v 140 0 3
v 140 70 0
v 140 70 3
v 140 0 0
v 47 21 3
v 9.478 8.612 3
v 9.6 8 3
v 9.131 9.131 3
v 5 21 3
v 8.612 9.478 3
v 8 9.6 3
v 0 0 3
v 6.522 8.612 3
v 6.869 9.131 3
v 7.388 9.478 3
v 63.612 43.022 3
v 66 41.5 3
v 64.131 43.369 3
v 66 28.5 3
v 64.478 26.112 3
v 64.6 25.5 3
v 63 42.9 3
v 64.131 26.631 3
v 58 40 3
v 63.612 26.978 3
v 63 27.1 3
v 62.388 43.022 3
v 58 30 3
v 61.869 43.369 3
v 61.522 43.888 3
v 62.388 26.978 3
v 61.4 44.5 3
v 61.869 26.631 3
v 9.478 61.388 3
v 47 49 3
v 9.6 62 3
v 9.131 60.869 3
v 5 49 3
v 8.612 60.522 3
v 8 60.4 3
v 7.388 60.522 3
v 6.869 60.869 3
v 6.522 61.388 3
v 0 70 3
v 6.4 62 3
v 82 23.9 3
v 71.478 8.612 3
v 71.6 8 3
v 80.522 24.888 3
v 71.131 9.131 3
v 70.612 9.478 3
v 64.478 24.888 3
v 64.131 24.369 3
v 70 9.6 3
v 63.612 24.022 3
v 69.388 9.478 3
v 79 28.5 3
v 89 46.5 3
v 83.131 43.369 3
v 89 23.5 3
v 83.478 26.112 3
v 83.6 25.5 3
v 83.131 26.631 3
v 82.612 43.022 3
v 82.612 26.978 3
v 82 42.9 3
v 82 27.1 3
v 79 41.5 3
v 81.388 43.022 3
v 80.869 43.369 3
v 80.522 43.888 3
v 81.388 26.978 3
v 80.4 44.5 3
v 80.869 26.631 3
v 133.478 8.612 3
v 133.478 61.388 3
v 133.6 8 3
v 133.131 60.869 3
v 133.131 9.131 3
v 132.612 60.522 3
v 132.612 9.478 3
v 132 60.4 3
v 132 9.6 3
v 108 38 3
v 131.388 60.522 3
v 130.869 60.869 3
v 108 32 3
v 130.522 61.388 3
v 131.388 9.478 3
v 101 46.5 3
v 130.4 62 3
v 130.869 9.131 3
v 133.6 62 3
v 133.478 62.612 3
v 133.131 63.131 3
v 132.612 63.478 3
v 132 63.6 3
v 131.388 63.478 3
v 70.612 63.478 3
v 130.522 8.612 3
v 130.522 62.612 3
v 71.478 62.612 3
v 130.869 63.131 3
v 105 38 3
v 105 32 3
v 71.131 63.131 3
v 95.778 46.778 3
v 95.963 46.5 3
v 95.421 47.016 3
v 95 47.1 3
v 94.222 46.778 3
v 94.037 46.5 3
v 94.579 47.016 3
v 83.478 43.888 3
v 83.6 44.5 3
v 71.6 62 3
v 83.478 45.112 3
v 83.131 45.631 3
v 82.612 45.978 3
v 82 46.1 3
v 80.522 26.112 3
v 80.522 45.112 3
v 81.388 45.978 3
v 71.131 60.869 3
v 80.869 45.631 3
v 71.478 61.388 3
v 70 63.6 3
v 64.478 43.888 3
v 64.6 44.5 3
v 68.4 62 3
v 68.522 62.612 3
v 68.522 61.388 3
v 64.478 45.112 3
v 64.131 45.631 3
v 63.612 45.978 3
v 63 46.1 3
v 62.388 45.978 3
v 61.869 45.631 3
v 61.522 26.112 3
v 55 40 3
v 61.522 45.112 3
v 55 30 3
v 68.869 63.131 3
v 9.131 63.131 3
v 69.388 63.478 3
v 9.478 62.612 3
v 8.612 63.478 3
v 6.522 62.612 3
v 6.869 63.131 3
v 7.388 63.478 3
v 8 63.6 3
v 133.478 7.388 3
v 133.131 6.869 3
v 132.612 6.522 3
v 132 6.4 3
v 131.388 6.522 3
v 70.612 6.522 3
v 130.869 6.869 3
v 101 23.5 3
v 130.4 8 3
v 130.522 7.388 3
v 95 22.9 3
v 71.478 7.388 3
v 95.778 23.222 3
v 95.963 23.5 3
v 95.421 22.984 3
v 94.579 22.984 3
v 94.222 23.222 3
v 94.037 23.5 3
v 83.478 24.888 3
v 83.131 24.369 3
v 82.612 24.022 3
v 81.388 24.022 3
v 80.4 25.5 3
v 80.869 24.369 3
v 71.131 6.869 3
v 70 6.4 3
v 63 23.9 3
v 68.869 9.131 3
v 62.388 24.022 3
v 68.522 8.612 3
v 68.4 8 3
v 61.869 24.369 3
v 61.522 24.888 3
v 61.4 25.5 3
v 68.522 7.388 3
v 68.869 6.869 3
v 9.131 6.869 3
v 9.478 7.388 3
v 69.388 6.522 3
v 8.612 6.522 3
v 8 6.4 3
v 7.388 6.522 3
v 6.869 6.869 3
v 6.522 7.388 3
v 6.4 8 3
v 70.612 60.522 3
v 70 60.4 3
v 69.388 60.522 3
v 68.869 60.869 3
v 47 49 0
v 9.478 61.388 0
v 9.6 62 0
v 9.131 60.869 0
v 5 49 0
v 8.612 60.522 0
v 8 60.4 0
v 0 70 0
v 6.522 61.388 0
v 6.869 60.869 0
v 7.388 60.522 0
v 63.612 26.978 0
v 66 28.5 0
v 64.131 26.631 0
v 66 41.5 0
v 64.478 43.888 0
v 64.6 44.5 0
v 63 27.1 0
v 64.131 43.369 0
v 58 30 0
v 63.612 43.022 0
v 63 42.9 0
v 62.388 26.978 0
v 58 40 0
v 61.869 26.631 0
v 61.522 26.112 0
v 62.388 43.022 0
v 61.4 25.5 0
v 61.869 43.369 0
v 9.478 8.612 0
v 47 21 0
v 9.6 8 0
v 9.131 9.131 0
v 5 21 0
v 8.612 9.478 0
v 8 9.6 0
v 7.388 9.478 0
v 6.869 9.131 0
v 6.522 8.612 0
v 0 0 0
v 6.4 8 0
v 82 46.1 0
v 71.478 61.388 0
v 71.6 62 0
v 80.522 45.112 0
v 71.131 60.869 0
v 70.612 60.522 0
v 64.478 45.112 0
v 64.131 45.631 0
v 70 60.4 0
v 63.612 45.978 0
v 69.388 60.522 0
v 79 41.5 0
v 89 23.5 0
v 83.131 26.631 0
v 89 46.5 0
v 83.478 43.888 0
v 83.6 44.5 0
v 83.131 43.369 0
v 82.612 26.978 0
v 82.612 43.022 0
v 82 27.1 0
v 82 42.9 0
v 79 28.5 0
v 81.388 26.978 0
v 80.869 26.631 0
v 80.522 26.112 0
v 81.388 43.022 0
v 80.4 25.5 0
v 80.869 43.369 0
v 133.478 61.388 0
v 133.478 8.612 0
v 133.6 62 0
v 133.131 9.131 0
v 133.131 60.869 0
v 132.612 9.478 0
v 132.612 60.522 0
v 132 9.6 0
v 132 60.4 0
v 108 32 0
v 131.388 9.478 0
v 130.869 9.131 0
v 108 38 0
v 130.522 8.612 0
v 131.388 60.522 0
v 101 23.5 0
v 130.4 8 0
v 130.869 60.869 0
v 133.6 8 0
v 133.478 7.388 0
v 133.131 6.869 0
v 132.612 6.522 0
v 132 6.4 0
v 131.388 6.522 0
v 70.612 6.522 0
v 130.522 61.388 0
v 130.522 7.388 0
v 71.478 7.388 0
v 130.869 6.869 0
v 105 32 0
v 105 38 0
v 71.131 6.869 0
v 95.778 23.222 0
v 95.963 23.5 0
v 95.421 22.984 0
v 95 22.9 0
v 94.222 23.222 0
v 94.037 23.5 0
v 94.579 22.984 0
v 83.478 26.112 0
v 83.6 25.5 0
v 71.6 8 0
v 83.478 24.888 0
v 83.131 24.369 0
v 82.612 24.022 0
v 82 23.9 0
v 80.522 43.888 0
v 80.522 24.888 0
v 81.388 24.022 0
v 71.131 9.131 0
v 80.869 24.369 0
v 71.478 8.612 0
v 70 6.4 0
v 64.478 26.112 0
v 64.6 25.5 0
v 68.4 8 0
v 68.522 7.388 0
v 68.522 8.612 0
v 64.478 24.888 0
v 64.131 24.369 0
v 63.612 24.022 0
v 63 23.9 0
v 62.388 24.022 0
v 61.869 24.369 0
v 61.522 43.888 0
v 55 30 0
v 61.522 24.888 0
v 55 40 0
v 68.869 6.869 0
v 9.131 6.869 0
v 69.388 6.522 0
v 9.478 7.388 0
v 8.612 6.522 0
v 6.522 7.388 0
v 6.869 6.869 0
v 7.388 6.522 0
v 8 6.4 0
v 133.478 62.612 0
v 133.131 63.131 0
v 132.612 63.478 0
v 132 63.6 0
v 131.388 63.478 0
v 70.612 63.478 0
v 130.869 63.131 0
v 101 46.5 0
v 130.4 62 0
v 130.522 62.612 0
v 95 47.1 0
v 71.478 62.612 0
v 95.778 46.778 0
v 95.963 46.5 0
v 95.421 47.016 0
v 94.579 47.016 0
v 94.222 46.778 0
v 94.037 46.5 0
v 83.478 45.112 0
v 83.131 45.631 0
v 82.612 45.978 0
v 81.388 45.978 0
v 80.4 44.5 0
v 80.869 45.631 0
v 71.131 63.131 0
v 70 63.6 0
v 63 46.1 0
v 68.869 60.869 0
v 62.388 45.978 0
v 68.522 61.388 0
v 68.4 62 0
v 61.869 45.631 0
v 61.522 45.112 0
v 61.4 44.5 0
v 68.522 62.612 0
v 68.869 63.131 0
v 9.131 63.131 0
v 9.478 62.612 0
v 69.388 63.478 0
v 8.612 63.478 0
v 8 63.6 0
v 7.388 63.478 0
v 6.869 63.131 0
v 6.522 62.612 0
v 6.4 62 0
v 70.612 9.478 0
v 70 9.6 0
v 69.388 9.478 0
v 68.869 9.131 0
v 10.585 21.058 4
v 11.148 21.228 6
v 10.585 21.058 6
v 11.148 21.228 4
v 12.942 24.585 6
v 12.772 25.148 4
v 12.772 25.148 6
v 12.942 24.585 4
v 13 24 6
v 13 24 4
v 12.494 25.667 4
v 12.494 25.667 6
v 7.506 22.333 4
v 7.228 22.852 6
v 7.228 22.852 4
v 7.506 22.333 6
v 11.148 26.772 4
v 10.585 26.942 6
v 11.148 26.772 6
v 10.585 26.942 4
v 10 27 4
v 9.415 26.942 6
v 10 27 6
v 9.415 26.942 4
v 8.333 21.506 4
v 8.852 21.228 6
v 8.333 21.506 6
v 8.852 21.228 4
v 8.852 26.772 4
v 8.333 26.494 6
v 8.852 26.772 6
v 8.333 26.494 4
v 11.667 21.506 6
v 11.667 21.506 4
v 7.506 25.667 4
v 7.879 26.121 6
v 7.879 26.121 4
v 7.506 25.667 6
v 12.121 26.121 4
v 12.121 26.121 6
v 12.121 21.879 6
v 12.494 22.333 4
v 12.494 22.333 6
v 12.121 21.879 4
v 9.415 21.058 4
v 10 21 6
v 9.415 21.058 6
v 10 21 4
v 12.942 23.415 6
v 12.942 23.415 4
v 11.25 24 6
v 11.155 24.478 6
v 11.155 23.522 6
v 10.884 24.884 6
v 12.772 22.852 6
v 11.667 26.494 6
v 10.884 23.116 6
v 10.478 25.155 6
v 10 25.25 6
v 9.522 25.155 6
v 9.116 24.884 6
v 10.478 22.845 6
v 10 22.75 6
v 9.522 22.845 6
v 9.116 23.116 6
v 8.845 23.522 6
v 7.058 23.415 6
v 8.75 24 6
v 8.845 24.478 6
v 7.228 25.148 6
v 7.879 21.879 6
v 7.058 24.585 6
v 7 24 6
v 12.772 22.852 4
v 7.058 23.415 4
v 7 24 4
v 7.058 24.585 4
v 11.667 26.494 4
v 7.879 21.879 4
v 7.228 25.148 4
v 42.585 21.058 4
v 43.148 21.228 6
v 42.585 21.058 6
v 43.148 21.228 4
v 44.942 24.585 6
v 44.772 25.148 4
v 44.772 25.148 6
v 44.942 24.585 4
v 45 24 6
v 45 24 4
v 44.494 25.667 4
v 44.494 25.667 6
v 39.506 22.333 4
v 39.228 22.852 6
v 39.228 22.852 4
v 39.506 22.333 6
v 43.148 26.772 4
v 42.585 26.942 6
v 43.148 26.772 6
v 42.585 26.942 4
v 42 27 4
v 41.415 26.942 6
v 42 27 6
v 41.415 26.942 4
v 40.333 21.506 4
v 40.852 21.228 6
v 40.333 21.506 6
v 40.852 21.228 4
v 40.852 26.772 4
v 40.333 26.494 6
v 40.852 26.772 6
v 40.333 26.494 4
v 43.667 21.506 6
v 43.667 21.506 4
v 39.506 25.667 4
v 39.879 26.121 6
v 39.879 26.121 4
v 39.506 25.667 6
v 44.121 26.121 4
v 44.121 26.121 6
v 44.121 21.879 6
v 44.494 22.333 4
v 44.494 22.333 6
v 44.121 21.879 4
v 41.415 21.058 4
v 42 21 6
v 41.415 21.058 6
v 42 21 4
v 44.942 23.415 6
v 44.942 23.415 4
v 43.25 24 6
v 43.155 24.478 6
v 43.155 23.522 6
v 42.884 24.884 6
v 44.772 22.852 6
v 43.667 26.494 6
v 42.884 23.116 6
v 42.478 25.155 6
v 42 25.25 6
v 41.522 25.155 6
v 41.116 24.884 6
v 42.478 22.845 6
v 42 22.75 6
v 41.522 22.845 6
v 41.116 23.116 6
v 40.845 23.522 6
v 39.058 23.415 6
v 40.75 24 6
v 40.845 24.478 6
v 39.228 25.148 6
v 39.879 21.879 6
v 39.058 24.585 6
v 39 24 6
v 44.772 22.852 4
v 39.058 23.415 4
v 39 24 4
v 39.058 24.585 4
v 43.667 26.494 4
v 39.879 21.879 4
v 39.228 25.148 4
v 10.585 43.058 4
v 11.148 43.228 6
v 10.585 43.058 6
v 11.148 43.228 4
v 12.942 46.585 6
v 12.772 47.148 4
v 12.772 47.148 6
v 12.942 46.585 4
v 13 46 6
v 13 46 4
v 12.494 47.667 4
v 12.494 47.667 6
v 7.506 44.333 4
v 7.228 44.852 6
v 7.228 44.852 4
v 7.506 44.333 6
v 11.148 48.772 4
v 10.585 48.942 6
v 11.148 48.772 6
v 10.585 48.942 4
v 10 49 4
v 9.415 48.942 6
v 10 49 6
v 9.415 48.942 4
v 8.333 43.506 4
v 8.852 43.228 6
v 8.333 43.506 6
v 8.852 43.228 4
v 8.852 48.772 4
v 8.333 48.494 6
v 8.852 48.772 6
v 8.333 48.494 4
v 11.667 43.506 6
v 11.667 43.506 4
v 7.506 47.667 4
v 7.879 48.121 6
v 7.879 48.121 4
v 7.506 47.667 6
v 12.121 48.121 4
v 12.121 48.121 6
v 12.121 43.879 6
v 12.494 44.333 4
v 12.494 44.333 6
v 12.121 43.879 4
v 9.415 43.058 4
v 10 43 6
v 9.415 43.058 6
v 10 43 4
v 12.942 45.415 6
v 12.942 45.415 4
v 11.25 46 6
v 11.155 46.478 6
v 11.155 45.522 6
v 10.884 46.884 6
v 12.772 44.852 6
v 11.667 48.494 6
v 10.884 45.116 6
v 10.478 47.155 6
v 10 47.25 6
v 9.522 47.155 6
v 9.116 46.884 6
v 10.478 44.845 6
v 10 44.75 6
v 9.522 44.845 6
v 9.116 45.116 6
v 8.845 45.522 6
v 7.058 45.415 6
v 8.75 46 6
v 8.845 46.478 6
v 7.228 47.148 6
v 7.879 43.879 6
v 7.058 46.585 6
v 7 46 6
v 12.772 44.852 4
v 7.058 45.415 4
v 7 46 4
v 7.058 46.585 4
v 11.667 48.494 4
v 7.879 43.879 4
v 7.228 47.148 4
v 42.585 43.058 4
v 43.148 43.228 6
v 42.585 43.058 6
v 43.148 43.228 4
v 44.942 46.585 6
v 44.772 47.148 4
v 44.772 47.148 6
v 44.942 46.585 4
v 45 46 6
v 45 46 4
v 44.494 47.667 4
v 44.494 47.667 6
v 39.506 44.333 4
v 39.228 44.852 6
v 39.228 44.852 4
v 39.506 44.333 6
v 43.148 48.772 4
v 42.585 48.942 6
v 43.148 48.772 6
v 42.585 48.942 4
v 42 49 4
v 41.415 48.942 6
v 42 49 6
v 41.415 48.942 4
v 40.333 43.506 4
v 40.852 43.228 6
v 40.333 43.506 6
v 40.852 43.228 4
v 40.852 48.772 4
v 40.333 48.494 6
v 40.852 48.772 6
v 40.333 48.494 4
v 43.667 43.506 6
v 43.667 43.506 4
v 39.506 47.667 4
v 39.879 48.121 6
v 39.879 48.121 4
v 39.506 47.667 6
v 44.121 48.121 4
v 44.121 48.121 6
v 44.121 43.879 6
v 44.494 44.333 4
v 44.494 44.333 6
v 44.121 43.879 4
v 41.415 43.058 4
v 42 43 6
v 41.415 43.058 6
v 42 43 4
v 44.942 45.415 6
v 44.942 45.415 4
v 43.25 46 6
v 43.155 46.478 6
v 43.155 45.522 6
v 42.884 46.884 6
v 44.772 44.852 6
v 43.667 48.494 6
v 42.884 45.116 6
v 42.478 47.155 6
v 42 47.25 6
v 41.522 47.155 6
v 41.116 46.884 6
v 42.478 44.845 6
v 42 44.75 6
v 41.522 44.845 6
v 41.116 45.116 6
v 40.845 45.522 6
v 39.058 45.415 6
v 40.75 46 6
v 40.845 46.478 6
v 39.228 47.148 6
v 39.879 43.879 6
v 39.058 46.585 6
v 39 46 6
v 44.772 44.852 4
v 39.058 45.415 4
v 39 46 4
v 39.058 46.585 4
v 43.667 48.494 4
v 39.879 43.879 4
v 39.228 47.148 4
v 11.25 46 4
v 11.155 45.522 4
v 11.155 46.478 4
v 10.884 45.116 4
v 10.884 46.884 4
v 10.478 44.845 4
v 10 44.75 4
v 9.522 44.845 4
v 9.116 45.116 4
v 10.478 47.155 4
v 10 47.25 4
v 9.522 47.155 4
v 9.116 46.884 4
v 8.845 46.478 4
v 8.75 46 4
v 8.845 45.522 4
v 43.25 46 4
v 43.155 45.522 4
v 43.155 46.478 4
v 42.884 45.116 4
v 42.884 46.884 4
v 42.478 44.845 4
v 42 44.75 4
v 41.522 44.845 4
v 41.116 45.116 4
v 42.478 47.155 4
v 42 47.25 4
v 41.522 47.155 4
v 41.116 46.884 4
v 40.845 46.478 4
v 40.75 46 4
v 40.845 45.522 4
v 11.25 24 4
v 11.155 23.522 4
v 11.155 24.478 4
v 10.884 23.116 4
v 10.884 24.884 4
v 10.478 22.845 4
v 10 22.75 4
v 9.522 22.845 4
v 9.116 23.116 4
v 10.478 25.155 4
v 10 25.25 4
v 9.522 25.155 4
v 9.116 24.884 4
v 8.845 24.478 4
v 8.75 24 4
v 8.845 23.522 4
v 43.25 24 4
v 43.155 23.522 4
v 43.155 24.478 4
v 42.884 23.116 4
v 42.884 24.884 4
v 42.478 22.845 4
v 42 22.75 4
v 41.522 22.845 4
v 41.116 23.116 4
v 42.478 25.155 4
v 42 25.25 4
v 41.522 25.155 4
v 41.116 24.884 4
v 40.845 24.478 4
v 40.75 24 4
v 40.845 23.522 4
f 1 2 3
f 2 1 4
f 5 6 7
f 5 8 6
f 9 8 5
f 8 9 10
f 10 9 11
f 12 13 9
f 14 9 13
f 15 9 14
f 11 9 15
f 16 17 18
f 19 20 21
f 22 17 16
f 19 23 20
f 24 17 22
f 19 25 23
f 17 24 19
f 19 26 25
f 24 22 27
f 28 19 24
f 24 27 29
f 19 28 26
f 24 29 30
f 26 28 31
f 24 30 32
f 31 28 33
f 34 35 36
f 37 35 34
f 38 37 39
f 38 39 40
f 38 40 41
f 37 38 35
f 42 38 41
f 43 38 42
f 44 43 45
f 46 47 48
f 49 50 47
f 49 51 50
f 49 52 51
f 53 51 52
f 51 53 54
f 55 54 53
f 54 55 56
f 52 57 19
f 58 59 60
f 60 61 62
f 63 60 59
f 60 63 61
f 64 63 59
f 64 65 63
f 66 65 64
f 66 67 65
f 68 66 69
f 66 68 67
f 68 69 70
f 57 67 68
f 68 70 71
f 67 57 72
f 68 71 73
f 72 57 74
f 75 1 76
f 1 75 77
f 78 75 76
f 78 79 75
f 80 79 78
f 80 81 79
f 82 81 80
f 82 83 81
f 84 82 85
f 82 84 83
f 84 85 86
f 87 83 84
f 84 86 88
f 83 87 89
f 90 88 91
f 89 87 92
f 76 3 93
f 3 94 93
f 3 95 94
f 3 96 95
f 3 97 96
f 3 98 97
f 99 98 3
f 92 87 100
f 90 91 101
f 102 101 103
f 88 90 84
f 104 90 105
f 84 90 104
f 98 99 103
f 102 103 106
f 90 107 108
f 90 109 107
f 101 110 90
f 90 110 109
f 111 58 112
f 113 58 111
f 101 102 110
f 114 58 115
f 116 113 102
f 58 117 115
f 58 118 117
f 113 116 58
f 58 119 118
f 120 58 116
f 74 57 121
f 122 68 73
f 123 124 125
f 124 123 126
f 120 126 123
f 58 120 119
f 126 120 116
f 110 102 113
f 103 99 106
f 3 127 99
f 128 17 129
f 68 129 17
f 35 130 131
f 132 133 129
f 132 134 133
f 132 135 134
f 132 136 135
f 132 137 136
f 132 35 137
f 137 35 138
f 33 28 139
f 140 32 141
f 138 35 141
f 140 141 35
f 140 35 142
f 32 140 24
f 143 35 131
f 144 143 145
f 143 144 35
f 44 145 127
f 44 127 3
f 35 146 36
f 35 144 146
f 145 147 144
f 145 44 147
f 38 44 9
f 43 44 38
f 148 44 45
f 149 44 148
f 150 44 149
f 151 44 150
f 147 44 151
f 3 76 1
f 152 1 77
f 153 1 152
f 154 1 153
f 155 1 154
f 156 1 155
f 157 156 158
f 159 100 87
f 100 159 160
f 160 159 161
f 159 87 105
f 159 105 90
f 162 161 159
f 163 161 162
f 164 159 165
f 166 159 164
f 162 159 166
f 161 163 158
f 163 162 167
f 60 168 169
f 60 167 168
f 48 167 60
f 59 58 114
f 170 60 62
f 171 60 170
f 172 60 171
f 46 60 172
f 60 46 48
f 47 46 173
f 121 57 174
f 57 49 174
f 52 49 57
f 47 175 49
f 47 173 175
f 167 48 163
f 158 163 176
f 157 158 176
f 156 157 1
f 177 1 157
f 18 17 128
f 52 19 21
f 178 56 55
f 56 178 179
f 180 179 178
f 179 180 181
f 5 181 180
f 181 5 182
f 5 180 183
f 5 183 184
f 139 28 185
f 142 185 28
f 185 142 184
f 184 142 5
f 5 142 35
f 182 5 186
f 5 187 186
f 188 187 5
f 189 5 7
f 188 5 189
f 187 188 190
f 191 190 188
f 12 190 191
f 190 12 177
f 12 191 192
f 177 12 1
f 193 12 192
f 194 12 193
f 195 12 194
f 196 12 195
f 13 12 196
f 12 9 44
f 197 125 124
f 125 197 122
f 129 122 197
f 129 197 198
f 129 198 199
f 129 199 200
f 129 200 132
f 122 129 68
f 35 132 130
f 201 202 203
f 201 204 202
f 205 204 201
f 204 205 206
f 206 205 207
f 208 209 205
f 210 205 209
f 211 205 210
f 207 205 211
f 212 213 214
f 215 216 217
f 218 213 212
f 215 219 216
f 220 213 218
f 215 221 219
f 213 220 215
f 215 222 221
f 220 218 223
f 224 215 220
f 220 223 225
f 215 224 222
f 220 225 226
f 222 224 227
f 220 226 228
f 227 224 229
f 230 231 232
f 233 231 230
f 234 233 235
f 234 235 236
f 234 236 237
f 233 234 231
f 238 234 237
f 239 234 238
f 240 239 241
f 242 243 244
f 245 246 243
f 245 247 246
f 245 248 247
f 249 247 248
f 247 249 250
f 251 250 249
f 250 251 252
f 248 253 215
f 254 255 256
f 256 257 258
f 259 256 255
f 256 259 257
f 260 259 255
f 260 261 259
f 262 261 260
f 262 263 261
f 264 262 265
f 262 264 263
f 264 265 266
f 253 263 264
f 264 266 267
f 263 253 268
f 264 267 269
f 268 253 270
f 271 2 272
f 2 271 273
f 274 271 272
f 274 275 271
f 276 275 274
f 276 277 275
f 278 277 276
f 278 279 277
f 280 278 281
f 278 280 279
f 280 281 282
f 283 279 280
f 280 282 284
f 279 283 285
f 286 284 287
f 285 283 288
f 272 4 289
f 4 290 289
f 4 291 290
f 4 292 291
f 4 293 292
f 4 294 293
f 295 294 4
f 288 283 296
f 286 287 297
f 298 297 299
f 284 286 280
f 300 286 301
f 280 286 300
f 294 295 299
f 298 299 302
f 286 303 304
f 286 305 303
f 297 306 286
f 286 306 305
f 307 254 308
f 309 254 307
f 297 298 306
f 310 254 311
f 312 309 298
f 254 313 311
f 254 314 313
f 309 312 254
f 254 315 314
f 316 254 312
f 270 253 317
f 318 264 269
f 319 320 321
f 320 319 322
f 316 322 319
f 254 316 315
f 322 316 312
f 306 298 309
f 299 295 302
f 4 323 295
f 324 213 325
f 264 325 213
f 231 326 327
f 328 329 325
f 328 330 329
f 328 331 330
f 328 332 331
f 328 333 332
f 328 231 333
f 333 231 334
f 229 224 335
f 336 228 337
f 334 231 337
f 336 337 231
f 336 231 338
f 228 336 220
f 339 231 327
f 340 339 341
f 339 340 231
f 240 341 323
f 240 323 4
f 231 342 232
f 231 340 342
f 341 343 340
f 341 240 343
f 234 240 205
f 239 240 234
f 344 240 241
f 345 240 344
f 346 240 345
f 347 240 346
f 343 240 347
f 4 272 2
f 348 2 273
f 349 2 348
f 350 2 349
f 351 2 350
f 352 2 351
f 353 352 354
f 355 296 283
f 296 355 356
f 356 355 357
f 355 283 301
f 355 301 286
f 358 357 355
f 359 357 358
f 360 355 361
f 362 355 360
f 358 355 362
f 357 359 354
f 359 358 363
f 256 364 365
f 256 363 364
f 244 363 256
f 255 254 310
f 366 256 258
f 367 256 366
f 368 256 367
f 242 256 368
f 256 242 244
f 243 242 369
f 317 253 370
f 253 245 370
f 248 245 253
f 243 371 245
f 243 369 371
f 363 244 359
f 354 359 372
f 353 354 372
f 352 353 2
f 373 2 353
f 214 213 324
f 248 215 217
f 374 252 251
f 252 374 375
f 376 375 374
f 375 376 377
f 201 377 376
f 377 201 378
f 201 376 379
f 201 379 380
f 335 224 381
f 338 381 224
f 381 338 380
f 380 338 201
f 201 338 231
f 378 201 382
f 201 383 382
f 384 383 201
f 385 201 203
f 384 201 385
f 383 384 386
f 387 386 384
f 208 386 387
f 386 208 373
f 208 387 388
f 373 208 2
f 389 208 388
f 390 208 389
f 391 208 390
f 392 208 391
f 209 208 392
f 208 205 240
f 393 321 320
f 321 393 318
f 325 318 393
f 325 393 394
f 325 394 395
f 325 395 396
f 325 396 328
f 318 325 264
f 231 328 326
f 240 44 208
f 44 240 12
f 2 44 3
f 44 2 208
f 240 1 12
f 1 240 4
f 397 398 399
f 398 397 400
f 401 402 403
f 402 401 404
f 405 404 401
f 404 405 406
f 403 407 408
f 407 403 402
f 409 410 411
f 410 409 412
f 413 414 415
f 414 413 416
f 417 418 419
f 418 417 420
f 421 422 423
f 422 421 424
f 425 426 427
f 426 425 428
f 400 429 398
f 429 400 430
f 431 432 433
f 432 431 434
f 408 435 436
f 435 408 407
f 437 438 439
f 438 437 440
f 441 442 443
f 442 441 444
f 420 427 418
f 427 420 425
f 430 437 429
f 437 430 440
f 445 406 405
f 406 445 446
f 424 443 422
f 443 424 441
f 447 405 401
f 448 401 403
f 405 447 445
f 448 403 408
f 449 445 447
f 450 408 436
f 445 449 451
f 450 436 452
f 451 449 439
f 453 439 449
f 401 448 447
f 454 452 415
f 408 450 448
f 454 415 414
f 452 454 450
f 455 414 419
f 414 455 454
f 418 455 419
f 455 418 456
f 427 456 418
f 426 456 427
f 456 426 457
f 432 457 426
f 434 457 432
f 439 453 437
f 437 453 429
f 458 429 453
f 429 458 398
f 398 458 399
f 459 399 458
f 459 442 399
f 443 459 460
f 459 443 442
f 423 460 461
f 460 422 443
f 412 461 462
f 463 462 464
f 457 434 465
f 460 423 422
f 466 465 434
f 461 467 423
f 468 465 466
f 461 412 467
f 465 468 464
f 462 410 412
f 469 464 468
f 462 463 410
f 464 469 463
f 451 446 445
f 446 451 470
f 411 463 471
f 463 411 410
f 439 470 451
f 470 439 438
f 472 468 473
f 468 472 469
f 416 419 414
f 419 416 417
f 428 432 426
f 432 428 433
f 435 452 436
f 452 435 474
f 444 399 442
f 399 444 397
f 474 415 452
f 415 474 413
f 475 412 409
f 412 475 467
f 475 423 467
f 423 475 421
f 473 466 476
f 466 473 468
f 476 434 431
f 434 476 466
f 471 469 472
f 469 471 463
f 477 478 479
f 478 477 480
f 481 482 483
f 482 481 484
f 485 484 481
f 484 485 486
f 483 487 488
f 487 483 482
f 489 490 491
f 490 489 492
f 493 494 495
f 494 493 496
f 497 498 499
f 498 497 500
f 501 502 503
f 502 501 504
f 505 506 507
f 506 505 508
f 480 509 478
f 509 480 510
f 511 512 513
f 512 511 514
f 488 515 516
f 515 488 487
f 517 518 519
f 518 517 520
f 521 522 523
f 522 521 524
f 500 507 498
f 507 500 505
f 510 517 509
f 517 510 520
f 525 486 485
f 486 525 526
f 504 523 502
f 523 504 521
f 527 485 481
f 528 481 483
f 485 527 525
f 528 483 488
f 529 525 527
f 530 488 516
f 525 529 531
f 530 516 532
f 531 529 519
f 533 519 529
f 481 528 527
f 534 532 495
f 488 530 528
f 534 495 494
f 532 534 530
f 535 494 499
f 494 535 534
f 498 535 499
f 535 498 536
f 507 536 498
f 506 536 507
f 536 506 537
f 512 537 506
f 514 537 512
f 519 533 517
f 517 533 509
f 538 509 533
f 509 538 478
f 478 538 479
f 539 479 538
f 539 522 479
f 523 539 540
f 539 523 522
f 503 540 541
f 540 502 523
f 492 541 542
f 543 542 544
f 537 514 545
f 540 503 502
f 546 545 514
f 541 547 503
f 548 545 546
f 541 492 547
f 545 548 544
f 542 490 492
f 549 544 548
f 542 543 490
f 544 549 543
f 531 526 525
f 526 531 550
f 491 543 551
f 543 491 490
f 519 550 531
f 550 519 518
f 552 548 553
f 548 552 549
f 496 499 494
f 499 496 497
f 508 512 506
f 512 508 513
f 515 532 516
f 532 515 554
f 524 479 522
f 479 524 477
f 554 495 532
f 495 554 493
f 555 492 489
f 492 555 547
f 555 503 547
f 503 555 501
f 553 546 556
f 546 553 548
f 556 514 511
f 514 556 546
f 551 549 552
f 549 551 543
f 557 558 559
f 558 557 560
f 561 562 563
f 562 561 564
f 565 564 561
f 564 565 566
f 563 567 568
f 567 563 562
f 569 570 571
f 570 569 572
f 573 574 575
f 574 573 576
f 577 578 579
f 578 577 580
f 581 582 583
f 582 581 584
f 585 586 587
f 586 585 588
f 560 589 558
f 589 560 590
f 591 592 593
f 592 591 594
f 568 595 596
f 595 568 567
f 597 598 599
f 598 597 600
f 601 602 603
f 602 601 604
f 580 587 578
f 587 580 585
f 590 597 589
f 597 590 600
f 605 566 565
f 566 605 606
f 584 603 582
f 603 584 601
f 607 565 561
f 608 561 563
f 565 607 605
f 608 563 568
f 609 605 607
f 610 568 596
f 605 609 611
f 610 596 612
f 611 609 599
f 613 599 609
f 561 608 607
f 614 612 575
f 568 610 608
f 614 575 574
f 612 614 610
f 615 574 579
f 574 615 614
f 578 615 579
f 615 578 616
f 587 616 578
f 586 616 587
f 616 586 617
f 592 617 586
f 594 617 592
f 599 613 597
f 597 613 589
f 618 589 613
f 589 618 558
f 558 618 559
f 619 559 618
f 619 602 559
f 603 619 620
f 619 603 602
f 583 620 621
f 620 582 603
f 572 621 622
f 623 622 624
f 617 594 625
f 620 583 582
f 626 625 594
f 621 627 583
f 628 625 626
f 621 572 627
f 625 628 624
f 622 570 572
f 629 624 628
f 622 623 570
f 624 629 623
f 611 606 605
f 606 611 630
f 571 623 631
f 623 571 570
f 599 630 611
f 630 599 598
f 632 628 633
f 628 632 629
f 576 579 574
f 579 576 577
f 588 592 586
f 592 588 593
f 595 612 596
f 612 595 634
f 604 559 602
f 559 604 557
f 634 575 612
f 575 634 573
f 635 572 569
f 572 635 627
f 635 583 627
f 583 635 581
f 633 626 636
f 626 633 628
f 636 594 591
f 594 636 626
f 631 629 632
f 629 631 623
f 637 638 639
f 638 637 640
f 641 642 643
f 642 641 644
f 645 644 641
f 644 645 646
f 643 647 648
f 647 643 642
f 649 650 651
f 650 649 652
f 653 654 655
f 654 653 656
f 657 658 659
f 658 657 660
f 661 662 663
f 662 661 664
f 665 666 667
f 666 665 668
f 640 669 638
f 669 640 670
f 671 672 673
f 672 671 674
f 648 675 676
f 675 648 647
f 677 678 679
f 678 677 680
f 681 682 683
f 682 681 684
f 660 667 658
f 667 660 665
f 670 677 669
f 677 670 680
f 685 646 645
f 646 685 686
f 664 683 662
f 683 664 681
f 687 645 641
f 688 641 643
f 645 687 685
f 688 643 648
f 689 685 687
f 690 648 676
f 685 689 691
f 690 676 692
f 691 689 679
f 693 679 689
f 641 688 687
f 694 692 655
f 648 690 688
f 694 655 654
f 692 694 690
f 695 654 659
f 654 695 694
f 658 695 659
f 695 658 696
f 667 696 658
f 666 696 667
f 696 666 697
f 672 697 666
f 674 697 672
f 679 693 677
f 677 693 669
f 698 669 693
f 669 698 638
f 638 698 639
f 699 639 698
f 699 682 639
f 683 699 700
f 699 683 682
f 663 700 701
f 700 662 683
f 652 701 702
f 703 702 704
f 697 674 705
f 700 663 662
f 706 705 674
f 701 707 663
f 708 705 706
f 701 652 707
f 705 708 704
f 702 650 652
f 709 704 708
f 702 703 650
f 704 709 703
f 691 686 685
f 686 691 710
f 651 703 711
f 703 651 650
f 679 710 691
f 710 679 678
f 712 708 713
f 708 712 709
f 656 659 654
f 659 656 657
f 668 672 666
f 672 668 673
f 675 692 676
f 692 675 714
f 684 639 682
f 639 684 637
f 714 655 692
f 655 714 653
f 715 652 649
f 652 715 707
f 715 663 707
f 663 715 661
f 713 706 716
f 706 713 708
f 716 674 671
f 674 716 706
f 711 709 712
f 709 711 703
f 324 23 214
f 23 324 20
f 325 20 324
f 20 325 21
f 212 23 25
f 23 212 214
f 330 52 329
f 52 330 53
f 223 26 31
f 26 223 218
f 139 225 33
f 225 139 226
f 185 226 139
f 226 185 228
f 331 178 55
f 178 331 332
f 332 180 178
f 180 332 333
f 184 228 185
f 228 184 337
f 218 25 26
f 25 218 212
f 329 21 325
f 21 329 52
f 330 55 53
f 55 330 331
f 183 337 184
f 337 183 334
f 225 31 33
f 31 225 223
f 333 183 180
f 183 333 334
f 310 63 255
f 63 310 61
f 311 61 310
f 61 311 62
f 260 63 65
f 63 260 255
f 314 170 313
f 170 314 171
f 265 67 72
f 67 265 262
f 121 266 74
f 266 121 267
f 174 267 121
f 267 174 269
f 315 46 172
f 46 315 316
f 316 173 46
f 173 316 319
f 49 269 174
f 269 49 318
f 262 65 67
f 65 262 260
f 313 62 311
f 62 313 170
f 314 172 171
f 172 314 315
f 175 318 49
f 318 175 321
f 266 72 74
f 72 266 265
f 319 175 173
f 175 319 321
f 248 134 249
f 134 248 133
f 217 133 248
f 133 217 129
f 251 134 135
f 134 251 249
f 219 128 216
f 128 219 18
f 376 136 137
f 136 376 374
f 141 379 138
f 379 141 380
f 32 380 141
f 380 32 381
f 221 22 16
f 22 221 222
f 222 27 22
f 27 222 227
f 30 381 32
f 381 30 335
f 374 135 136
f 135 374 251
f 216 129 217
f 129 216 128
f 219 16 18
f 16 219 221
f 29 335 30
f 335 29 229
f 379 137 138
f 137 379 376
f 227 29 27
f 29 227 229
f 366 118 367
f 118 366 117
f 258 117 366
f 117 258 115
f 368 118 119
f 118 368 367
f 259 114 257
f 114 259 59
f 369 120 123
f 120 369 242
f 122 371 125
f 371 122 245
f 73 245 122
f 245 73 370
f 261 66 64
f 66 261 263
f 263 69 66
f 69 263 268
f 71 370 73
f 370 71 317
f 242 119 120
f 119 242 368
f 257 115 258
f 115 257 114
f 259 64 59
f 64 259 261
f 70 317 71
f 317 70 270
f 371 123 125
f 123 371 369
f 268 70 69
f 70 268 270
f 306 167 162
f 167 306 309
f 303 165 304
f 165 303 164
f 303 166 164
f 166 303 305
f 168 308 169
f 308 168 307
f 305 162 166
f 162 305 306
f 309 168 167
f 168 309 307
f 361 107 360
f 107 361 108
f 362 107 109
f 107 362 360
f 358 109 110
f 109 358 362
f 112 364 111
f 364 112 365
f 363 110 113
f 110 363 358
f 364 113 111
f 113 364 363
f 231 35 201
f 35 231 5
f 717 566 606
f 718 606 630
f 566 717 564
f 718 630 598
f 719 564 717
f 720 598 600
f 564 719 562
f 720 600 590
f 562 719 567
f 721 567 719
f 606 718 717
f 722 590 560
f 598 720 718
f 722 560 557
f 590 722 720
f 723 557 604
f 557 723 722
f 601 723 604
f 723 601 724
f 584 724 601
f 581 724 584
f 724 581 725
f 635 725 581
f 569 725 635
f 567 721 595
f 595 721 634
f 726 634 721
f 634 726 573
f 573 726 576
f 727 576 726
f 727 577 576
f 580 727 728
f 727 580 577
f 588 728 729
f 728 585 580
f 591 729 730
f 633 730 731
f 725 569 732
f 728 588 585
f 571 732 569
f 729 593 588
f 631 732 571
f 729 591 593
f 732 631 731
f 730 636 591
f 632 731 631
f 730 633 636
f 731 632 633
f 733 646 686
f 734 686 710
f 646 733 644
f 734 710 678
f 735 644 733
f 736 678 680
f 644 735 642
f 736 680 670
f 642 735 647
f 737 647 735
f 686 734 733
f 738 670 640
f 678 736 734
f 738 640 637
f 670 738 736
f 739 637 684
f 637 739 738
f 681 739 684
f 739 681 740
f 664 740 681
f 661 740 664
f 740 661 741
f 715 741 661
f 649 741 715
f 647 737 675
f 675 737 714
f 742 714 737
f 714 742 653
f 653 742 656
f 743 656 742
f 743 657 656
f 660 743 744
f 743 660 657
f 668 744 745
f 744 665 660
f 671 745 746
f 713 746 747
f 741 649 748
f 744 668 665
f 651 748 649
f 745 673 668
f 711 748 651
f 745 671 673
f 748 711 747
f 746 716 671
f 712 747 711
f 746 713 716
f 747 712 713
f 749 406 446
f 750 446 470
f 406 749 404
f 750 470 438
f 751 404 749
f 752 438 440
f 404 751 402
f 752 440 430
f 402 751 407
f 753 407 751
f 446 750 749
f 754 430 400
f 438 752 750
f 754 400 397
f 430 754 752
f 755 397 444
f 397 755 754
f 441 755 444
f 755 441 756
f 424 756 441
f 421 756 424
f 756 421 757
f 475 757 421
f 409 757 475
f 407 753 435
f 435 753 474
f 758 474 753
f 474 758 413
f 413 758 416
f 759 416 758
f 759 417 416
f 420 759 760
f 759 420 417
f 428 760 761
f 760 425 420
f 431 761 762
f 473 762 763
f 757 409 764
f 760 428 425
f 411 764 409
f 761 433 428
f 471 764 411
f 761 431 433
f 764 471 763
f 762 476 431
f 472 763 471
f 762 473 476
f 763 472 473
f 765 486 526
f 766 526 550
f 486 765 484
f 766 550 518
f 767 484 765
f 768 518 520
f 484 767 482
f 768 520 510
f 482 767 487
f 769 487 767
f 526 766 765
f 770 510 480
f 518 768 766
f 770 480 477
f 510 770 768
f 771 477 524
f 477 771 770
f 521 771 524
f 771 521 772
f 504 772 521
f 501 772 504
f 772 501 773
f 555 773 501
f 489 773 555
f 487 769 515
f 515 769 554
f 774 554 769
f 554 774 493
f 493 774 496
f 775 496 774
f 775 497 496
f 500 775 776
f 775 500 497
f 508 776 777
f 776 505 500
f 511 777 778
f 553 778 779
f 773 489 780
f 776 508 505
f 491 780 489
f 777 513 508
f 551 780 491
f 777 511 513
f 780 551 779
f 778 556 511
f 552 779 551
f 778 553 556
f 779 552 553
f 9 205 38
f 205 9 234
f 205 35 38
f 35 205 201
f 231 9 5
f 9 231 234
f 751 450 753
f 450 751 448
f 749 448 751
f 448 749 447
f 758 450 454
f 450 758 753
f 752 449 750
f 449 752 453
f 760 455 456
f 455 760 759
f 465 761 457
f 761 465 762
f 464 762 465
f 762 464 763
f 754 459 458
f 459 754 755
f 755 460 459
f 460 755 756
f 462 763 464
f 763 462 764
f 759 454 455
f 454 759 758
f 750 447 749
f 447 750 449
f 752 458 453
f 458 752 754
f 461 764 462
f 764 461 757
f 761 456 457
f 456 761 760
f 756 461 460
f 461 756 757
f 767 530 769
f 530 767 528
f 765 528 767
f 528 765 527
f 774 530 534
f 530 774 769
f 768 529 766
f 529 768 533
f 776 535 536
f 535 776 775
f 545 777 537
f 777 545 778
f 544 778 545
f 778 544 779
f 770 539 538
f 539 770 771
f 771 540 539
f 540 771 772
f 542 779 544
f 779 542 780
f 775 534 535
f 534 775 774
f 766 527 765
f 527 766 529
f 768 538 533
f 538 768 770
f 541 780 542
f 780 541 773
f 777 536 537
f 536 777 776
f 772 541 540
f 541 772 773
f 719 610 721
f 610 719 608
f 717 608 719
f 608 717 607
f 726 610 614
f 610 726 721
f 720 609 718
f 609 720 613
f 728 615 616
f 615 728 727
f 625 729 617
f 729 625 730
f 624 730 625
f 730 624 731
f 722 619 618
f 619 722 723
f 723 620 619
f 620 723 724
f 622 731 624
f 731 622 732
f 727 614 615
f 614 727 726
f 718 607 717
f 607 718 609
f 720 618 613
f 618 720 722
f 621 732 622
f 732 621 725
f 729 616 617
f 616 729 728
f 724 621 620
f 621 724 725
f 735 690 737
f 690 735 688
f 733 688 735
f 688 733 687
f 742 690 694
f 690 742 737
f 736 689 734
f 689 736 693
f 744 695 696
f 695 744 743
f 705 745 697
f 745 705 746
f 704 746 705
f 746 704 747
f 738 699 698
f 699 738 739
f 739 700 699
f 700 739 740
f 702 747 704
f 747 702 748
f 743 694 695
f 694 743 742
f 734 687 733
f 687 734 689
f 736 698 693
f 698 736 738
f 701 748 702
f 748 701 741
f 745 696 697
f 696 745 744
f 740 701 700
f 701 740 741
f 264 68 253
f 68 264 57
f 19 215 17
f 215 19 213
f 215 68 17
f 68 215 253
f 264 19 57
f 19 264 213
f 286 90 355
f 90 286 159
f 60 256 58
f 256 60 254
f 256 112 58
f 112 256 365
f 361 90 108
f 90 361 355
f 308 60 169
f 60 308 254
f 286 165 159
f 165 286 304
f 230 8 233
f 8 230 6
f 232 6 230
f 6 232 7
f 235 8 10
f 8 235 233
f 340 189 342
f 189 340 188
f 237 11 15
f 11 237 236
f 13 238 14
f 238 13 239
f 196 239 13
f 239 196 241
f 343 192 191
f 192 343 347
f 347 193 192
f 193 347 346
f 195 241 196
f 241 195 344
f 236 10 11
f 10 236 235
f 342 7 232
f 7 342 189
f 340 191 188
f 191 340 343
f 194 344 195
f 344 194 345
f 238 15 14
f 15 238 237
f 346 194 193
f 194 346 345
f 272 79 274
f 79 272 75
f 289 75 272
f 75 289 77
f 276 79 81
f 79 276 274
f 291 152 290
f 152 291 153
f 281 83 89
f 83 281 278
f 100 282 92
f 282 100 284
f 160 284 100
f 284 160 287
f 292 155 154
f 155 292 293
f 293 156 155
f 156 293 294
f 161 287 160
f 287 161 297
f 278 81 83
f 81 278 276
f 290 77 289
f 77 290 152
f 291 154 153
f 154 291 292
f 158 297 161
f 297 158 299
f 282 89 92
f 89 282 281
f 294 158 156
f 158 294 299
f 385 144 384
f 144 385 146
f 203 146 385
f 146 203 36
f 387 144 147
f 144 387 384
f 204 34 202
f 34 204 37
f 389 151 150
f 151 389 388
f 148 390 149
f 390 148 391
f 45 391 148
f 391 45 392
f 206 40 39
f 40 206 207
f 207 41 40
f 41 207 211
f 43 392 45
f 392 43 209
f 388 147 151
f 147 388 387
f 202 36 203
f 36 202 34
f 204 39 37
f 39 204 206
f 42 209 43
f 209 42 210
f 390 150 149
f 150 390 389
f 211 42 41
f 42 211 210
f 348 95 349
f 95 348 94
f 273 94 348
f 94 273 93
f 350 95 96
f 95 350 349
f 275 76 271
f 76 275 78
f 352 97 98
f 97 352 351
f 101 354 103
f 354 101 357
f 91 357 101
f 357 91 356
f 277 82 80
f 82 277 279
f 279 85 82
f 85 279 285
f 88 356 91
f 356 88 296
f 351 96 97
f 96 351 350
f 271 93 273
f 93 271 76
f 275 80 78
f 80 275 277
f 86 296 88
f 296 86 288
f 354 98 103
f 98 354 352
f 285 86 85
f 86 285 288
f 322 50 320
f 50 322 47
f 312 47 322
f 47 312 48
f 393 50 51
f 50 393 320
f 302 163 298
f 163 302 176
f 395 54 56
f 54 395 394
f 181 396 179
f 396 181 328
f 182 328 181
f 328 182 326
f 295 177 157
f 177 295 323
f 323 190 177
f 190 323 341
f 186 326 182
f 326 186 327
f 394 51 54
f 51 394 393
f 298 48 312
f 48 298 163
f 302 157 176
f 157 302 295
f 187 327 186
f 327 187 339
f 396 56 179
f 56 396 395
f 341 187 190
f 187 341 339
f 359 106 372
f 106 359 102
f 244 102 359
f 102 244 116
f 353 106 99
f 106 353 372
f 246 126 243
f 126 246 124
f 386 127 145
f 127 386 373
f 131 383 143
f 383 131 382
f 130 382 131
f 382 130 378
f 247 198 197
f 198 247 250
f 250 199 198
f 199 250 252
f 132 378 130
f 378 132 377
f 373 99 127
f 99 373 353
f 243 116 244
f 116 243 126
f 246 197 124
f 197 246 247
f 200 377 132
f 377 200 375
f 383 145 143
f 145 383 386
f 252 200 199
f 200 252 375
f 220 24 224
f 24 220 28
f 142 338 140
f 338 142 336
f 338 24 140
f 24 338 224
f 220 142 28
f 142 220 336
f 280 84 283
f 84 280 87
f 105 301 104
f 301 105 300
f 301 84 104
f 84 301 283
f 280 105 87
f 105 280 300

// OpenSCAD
// ============================================
// ESP32 Rover - Upper Chassis Plate
// ============================================
// Design Specification v1.0
//
// This is the upper deck of the sandwich-plate
// chassis design. Houses electronics.
// ============================================

// Main dimensions
chassis_length = 140;
chassis_width = 70;
chassis_thickness = 3;

// ESP32-CAM dimensions
esp32cam_width = 28;
esp32cam_length = 42;
esp32cam_offset_x = 5;  // From front

// SimpleFOC Mini dimensions
simplefoc_width = 25;
simplefoc_length = 25;
simplefoc_offset_x = 60;

// MG90S Servo dimensions
servo_width = 23;
servo_length = 12;
servo_offset_x = 95;

// Mounting holes
mount_hole_dia = 3.2;  // M3 clearance
standoff_hole_dia = 3.2;
mount_edge_offset = 5;  // Smaller offset for upper deck

// Resolution
$fn = 32;

module upper_chassis() {
    difference() {
        union() {
            // Main plate
            cube([chassis_length, chassis_width, chassis_thickness]);

            // ESP32-CAM mounting posts
            translate([esp32cam_offset_x + 5, (chassis_width - esp32cam_width) / 2 + 3, chassis_thickness])
                cylinder(d = 6, h = 3);
            translate([esp32cam_offset_x + esp32cam_length - 5, (chassis_width - esp32cam_width) / 2 + 3, chassis_thickness])
                cylinder(d = 6, h = 3);
            translate([esp32cam_offset_x + 5, (chassis_width + esp32cam_width) / 2 - 3, chassis_thickness])
                cylinder(d = 6, h = 3);
            translate([esp32cam_offset_x + esp32cam_length - 5, (chassis_width + esp32cam_width) / 2 - 3, chassis_thickness])
                cylinder(d = 6, h = 3);
        }

        // ESP32-CAM cutout for antenna clearance
        translate([esp32cam_offset_x, (chassis_width - esp32cam_width) / 2, -1])
            cube([esp32cam_length, esp32cam_width, chassis_thickness + 2]);

        // ESP32-CAM mounting post holes
        translate([esp32cam_offset_x + 5, (chassis_width - esp32cam_width) / 2 + 3, -1])
            cylinder(d = 2.5, h = chassis_thickness + 10, $fn = 16);
        translate([esp32cam_offset_x + esp32cam_length - 5, (chassis_width - esp32cam_width) / 2 + 3, -1])
            cylinder(d = 2.5, h = chassis_thickness + 10, $fn = 16);
        translate([esp32cam_offset_x + 5, (chassis_width + esp32cam_width) / 2 - 3, -1])
            cylinder(d = 2.5, h = chassis_thickness + 10, $fn = 16);
        translate([esp32cam_offset_x + esp32cam_length - 5, (chassis_width + esp32cam_width) / 2 - 3, -1])
            cylinder(d = 2.5, h = chassis_thickness + 10, $fn = 16);

        // SimpleFOC Mini mounting holes
        translate([simplefoc_offset_x, (chassis_width - simplefoc_width) / 2, -1]) {
            translate([3, 3, 0])
                cylinder(d = mount_hole_dia, h = chassis_thickness + 2, $fn = 16);
            translate([simplefoc_length - 3, 3, 0])
                cylinder(d = mount_hole_dia, h = chassis_thickness + 2, $fn = 16);
            translate([3, simplefoc_width - 3, 0])
                cylinder(d = mount_hole_dia, h = chassis_thickness + 2, $fn = 16);
            translate([simplefoc_length - 3, simplefoc_width - 3, 0])
                cylinder(d = mount_hole_dia, h = chassis_thickness + 2, $fn = 16);
        }

        // SimpleFOC ventilation cutout
        translate([simplefoc_offset_x + 6, (chassis_width - simplefoc_width) / 2 + 6, -1])
            cube([simplefoc_length - 12, simplefoc_width - 12, chassis_thickness + 2]);

        // Servo mounting holes (MG90S)
        translate([servo_offset_x, (chassis_width - 32) / 2, -1]) {
            // Tab mounting holes
            translate([0, 5, 0])
                cylinder(d = 2.2, h = chassis_thickness + 2, $fn = 16);
            translate([0, 32 - 5, 0])
                cylinder(d = 2.2, h = chassis_thickness + 2, $fn = 16);
        }

        // Servo body cutout
        translate([servo_offset_x - servo_length / 2, (chassis_width - servo_width) / 2, -1])
            cube([servo_length, servo_width, chassis_thickness + 2]);

        // Standoff holes - matching lower deck
        // Corners (offset from lower deck corners)
        translate([mount_edge_offset + 3, mount_edge_offset + 3, -1])
            cylinder(d = standoff_hole_dia, h = chassis_thickness + 2, $fn = 16);
        translate([chassis_length - mount_edge_offset - 3, mount_edge_offset + 3, -1])
            cylinder(d = standoff_hole_dia, h = chassis_thickness + 2, $fn = 16);
        translate([mount_edge_offset + 3, chassis_width - mount_edge_offset - 3, -1])
            cylinder(d = standoff_hole_dia, h = chassis_thickness + 2, $fn = 16);
        translate([chassis_length - mount_edge_offset - 3, chassis_width - mount_edge_offset - 3, -1])
            cylinder(d = standoff_hole_dia, h = chassis_thickness + 2, $fn = 16);

        // Center standoffs
        translate([chassis_length / 2, mount_edge_offset + 3, -1])
            cylinder(d = standoff_hole_dia, h = chassis_thickness + 2, $fn = 16);
        translate([chassis_length / 2, chassis_width - mount_edge_offset - 3, -1])
            cylinder(d = standoff_hole_dia, h = chassis_thickness + 2, $fn = 16);

        // Wire routing slots
        translate([simplefoc_offset_x - 5, chassis_width / 2 - 5, -1])
            cube([3, 10, chassis_thickness + 2]);
        translate([servo_offset_x + 10, chassis_width / 2 - 3, -1])
            cube([3, 6, chassis_thickness + 2]);
    }
}

// Render the part
upper_chassis();
